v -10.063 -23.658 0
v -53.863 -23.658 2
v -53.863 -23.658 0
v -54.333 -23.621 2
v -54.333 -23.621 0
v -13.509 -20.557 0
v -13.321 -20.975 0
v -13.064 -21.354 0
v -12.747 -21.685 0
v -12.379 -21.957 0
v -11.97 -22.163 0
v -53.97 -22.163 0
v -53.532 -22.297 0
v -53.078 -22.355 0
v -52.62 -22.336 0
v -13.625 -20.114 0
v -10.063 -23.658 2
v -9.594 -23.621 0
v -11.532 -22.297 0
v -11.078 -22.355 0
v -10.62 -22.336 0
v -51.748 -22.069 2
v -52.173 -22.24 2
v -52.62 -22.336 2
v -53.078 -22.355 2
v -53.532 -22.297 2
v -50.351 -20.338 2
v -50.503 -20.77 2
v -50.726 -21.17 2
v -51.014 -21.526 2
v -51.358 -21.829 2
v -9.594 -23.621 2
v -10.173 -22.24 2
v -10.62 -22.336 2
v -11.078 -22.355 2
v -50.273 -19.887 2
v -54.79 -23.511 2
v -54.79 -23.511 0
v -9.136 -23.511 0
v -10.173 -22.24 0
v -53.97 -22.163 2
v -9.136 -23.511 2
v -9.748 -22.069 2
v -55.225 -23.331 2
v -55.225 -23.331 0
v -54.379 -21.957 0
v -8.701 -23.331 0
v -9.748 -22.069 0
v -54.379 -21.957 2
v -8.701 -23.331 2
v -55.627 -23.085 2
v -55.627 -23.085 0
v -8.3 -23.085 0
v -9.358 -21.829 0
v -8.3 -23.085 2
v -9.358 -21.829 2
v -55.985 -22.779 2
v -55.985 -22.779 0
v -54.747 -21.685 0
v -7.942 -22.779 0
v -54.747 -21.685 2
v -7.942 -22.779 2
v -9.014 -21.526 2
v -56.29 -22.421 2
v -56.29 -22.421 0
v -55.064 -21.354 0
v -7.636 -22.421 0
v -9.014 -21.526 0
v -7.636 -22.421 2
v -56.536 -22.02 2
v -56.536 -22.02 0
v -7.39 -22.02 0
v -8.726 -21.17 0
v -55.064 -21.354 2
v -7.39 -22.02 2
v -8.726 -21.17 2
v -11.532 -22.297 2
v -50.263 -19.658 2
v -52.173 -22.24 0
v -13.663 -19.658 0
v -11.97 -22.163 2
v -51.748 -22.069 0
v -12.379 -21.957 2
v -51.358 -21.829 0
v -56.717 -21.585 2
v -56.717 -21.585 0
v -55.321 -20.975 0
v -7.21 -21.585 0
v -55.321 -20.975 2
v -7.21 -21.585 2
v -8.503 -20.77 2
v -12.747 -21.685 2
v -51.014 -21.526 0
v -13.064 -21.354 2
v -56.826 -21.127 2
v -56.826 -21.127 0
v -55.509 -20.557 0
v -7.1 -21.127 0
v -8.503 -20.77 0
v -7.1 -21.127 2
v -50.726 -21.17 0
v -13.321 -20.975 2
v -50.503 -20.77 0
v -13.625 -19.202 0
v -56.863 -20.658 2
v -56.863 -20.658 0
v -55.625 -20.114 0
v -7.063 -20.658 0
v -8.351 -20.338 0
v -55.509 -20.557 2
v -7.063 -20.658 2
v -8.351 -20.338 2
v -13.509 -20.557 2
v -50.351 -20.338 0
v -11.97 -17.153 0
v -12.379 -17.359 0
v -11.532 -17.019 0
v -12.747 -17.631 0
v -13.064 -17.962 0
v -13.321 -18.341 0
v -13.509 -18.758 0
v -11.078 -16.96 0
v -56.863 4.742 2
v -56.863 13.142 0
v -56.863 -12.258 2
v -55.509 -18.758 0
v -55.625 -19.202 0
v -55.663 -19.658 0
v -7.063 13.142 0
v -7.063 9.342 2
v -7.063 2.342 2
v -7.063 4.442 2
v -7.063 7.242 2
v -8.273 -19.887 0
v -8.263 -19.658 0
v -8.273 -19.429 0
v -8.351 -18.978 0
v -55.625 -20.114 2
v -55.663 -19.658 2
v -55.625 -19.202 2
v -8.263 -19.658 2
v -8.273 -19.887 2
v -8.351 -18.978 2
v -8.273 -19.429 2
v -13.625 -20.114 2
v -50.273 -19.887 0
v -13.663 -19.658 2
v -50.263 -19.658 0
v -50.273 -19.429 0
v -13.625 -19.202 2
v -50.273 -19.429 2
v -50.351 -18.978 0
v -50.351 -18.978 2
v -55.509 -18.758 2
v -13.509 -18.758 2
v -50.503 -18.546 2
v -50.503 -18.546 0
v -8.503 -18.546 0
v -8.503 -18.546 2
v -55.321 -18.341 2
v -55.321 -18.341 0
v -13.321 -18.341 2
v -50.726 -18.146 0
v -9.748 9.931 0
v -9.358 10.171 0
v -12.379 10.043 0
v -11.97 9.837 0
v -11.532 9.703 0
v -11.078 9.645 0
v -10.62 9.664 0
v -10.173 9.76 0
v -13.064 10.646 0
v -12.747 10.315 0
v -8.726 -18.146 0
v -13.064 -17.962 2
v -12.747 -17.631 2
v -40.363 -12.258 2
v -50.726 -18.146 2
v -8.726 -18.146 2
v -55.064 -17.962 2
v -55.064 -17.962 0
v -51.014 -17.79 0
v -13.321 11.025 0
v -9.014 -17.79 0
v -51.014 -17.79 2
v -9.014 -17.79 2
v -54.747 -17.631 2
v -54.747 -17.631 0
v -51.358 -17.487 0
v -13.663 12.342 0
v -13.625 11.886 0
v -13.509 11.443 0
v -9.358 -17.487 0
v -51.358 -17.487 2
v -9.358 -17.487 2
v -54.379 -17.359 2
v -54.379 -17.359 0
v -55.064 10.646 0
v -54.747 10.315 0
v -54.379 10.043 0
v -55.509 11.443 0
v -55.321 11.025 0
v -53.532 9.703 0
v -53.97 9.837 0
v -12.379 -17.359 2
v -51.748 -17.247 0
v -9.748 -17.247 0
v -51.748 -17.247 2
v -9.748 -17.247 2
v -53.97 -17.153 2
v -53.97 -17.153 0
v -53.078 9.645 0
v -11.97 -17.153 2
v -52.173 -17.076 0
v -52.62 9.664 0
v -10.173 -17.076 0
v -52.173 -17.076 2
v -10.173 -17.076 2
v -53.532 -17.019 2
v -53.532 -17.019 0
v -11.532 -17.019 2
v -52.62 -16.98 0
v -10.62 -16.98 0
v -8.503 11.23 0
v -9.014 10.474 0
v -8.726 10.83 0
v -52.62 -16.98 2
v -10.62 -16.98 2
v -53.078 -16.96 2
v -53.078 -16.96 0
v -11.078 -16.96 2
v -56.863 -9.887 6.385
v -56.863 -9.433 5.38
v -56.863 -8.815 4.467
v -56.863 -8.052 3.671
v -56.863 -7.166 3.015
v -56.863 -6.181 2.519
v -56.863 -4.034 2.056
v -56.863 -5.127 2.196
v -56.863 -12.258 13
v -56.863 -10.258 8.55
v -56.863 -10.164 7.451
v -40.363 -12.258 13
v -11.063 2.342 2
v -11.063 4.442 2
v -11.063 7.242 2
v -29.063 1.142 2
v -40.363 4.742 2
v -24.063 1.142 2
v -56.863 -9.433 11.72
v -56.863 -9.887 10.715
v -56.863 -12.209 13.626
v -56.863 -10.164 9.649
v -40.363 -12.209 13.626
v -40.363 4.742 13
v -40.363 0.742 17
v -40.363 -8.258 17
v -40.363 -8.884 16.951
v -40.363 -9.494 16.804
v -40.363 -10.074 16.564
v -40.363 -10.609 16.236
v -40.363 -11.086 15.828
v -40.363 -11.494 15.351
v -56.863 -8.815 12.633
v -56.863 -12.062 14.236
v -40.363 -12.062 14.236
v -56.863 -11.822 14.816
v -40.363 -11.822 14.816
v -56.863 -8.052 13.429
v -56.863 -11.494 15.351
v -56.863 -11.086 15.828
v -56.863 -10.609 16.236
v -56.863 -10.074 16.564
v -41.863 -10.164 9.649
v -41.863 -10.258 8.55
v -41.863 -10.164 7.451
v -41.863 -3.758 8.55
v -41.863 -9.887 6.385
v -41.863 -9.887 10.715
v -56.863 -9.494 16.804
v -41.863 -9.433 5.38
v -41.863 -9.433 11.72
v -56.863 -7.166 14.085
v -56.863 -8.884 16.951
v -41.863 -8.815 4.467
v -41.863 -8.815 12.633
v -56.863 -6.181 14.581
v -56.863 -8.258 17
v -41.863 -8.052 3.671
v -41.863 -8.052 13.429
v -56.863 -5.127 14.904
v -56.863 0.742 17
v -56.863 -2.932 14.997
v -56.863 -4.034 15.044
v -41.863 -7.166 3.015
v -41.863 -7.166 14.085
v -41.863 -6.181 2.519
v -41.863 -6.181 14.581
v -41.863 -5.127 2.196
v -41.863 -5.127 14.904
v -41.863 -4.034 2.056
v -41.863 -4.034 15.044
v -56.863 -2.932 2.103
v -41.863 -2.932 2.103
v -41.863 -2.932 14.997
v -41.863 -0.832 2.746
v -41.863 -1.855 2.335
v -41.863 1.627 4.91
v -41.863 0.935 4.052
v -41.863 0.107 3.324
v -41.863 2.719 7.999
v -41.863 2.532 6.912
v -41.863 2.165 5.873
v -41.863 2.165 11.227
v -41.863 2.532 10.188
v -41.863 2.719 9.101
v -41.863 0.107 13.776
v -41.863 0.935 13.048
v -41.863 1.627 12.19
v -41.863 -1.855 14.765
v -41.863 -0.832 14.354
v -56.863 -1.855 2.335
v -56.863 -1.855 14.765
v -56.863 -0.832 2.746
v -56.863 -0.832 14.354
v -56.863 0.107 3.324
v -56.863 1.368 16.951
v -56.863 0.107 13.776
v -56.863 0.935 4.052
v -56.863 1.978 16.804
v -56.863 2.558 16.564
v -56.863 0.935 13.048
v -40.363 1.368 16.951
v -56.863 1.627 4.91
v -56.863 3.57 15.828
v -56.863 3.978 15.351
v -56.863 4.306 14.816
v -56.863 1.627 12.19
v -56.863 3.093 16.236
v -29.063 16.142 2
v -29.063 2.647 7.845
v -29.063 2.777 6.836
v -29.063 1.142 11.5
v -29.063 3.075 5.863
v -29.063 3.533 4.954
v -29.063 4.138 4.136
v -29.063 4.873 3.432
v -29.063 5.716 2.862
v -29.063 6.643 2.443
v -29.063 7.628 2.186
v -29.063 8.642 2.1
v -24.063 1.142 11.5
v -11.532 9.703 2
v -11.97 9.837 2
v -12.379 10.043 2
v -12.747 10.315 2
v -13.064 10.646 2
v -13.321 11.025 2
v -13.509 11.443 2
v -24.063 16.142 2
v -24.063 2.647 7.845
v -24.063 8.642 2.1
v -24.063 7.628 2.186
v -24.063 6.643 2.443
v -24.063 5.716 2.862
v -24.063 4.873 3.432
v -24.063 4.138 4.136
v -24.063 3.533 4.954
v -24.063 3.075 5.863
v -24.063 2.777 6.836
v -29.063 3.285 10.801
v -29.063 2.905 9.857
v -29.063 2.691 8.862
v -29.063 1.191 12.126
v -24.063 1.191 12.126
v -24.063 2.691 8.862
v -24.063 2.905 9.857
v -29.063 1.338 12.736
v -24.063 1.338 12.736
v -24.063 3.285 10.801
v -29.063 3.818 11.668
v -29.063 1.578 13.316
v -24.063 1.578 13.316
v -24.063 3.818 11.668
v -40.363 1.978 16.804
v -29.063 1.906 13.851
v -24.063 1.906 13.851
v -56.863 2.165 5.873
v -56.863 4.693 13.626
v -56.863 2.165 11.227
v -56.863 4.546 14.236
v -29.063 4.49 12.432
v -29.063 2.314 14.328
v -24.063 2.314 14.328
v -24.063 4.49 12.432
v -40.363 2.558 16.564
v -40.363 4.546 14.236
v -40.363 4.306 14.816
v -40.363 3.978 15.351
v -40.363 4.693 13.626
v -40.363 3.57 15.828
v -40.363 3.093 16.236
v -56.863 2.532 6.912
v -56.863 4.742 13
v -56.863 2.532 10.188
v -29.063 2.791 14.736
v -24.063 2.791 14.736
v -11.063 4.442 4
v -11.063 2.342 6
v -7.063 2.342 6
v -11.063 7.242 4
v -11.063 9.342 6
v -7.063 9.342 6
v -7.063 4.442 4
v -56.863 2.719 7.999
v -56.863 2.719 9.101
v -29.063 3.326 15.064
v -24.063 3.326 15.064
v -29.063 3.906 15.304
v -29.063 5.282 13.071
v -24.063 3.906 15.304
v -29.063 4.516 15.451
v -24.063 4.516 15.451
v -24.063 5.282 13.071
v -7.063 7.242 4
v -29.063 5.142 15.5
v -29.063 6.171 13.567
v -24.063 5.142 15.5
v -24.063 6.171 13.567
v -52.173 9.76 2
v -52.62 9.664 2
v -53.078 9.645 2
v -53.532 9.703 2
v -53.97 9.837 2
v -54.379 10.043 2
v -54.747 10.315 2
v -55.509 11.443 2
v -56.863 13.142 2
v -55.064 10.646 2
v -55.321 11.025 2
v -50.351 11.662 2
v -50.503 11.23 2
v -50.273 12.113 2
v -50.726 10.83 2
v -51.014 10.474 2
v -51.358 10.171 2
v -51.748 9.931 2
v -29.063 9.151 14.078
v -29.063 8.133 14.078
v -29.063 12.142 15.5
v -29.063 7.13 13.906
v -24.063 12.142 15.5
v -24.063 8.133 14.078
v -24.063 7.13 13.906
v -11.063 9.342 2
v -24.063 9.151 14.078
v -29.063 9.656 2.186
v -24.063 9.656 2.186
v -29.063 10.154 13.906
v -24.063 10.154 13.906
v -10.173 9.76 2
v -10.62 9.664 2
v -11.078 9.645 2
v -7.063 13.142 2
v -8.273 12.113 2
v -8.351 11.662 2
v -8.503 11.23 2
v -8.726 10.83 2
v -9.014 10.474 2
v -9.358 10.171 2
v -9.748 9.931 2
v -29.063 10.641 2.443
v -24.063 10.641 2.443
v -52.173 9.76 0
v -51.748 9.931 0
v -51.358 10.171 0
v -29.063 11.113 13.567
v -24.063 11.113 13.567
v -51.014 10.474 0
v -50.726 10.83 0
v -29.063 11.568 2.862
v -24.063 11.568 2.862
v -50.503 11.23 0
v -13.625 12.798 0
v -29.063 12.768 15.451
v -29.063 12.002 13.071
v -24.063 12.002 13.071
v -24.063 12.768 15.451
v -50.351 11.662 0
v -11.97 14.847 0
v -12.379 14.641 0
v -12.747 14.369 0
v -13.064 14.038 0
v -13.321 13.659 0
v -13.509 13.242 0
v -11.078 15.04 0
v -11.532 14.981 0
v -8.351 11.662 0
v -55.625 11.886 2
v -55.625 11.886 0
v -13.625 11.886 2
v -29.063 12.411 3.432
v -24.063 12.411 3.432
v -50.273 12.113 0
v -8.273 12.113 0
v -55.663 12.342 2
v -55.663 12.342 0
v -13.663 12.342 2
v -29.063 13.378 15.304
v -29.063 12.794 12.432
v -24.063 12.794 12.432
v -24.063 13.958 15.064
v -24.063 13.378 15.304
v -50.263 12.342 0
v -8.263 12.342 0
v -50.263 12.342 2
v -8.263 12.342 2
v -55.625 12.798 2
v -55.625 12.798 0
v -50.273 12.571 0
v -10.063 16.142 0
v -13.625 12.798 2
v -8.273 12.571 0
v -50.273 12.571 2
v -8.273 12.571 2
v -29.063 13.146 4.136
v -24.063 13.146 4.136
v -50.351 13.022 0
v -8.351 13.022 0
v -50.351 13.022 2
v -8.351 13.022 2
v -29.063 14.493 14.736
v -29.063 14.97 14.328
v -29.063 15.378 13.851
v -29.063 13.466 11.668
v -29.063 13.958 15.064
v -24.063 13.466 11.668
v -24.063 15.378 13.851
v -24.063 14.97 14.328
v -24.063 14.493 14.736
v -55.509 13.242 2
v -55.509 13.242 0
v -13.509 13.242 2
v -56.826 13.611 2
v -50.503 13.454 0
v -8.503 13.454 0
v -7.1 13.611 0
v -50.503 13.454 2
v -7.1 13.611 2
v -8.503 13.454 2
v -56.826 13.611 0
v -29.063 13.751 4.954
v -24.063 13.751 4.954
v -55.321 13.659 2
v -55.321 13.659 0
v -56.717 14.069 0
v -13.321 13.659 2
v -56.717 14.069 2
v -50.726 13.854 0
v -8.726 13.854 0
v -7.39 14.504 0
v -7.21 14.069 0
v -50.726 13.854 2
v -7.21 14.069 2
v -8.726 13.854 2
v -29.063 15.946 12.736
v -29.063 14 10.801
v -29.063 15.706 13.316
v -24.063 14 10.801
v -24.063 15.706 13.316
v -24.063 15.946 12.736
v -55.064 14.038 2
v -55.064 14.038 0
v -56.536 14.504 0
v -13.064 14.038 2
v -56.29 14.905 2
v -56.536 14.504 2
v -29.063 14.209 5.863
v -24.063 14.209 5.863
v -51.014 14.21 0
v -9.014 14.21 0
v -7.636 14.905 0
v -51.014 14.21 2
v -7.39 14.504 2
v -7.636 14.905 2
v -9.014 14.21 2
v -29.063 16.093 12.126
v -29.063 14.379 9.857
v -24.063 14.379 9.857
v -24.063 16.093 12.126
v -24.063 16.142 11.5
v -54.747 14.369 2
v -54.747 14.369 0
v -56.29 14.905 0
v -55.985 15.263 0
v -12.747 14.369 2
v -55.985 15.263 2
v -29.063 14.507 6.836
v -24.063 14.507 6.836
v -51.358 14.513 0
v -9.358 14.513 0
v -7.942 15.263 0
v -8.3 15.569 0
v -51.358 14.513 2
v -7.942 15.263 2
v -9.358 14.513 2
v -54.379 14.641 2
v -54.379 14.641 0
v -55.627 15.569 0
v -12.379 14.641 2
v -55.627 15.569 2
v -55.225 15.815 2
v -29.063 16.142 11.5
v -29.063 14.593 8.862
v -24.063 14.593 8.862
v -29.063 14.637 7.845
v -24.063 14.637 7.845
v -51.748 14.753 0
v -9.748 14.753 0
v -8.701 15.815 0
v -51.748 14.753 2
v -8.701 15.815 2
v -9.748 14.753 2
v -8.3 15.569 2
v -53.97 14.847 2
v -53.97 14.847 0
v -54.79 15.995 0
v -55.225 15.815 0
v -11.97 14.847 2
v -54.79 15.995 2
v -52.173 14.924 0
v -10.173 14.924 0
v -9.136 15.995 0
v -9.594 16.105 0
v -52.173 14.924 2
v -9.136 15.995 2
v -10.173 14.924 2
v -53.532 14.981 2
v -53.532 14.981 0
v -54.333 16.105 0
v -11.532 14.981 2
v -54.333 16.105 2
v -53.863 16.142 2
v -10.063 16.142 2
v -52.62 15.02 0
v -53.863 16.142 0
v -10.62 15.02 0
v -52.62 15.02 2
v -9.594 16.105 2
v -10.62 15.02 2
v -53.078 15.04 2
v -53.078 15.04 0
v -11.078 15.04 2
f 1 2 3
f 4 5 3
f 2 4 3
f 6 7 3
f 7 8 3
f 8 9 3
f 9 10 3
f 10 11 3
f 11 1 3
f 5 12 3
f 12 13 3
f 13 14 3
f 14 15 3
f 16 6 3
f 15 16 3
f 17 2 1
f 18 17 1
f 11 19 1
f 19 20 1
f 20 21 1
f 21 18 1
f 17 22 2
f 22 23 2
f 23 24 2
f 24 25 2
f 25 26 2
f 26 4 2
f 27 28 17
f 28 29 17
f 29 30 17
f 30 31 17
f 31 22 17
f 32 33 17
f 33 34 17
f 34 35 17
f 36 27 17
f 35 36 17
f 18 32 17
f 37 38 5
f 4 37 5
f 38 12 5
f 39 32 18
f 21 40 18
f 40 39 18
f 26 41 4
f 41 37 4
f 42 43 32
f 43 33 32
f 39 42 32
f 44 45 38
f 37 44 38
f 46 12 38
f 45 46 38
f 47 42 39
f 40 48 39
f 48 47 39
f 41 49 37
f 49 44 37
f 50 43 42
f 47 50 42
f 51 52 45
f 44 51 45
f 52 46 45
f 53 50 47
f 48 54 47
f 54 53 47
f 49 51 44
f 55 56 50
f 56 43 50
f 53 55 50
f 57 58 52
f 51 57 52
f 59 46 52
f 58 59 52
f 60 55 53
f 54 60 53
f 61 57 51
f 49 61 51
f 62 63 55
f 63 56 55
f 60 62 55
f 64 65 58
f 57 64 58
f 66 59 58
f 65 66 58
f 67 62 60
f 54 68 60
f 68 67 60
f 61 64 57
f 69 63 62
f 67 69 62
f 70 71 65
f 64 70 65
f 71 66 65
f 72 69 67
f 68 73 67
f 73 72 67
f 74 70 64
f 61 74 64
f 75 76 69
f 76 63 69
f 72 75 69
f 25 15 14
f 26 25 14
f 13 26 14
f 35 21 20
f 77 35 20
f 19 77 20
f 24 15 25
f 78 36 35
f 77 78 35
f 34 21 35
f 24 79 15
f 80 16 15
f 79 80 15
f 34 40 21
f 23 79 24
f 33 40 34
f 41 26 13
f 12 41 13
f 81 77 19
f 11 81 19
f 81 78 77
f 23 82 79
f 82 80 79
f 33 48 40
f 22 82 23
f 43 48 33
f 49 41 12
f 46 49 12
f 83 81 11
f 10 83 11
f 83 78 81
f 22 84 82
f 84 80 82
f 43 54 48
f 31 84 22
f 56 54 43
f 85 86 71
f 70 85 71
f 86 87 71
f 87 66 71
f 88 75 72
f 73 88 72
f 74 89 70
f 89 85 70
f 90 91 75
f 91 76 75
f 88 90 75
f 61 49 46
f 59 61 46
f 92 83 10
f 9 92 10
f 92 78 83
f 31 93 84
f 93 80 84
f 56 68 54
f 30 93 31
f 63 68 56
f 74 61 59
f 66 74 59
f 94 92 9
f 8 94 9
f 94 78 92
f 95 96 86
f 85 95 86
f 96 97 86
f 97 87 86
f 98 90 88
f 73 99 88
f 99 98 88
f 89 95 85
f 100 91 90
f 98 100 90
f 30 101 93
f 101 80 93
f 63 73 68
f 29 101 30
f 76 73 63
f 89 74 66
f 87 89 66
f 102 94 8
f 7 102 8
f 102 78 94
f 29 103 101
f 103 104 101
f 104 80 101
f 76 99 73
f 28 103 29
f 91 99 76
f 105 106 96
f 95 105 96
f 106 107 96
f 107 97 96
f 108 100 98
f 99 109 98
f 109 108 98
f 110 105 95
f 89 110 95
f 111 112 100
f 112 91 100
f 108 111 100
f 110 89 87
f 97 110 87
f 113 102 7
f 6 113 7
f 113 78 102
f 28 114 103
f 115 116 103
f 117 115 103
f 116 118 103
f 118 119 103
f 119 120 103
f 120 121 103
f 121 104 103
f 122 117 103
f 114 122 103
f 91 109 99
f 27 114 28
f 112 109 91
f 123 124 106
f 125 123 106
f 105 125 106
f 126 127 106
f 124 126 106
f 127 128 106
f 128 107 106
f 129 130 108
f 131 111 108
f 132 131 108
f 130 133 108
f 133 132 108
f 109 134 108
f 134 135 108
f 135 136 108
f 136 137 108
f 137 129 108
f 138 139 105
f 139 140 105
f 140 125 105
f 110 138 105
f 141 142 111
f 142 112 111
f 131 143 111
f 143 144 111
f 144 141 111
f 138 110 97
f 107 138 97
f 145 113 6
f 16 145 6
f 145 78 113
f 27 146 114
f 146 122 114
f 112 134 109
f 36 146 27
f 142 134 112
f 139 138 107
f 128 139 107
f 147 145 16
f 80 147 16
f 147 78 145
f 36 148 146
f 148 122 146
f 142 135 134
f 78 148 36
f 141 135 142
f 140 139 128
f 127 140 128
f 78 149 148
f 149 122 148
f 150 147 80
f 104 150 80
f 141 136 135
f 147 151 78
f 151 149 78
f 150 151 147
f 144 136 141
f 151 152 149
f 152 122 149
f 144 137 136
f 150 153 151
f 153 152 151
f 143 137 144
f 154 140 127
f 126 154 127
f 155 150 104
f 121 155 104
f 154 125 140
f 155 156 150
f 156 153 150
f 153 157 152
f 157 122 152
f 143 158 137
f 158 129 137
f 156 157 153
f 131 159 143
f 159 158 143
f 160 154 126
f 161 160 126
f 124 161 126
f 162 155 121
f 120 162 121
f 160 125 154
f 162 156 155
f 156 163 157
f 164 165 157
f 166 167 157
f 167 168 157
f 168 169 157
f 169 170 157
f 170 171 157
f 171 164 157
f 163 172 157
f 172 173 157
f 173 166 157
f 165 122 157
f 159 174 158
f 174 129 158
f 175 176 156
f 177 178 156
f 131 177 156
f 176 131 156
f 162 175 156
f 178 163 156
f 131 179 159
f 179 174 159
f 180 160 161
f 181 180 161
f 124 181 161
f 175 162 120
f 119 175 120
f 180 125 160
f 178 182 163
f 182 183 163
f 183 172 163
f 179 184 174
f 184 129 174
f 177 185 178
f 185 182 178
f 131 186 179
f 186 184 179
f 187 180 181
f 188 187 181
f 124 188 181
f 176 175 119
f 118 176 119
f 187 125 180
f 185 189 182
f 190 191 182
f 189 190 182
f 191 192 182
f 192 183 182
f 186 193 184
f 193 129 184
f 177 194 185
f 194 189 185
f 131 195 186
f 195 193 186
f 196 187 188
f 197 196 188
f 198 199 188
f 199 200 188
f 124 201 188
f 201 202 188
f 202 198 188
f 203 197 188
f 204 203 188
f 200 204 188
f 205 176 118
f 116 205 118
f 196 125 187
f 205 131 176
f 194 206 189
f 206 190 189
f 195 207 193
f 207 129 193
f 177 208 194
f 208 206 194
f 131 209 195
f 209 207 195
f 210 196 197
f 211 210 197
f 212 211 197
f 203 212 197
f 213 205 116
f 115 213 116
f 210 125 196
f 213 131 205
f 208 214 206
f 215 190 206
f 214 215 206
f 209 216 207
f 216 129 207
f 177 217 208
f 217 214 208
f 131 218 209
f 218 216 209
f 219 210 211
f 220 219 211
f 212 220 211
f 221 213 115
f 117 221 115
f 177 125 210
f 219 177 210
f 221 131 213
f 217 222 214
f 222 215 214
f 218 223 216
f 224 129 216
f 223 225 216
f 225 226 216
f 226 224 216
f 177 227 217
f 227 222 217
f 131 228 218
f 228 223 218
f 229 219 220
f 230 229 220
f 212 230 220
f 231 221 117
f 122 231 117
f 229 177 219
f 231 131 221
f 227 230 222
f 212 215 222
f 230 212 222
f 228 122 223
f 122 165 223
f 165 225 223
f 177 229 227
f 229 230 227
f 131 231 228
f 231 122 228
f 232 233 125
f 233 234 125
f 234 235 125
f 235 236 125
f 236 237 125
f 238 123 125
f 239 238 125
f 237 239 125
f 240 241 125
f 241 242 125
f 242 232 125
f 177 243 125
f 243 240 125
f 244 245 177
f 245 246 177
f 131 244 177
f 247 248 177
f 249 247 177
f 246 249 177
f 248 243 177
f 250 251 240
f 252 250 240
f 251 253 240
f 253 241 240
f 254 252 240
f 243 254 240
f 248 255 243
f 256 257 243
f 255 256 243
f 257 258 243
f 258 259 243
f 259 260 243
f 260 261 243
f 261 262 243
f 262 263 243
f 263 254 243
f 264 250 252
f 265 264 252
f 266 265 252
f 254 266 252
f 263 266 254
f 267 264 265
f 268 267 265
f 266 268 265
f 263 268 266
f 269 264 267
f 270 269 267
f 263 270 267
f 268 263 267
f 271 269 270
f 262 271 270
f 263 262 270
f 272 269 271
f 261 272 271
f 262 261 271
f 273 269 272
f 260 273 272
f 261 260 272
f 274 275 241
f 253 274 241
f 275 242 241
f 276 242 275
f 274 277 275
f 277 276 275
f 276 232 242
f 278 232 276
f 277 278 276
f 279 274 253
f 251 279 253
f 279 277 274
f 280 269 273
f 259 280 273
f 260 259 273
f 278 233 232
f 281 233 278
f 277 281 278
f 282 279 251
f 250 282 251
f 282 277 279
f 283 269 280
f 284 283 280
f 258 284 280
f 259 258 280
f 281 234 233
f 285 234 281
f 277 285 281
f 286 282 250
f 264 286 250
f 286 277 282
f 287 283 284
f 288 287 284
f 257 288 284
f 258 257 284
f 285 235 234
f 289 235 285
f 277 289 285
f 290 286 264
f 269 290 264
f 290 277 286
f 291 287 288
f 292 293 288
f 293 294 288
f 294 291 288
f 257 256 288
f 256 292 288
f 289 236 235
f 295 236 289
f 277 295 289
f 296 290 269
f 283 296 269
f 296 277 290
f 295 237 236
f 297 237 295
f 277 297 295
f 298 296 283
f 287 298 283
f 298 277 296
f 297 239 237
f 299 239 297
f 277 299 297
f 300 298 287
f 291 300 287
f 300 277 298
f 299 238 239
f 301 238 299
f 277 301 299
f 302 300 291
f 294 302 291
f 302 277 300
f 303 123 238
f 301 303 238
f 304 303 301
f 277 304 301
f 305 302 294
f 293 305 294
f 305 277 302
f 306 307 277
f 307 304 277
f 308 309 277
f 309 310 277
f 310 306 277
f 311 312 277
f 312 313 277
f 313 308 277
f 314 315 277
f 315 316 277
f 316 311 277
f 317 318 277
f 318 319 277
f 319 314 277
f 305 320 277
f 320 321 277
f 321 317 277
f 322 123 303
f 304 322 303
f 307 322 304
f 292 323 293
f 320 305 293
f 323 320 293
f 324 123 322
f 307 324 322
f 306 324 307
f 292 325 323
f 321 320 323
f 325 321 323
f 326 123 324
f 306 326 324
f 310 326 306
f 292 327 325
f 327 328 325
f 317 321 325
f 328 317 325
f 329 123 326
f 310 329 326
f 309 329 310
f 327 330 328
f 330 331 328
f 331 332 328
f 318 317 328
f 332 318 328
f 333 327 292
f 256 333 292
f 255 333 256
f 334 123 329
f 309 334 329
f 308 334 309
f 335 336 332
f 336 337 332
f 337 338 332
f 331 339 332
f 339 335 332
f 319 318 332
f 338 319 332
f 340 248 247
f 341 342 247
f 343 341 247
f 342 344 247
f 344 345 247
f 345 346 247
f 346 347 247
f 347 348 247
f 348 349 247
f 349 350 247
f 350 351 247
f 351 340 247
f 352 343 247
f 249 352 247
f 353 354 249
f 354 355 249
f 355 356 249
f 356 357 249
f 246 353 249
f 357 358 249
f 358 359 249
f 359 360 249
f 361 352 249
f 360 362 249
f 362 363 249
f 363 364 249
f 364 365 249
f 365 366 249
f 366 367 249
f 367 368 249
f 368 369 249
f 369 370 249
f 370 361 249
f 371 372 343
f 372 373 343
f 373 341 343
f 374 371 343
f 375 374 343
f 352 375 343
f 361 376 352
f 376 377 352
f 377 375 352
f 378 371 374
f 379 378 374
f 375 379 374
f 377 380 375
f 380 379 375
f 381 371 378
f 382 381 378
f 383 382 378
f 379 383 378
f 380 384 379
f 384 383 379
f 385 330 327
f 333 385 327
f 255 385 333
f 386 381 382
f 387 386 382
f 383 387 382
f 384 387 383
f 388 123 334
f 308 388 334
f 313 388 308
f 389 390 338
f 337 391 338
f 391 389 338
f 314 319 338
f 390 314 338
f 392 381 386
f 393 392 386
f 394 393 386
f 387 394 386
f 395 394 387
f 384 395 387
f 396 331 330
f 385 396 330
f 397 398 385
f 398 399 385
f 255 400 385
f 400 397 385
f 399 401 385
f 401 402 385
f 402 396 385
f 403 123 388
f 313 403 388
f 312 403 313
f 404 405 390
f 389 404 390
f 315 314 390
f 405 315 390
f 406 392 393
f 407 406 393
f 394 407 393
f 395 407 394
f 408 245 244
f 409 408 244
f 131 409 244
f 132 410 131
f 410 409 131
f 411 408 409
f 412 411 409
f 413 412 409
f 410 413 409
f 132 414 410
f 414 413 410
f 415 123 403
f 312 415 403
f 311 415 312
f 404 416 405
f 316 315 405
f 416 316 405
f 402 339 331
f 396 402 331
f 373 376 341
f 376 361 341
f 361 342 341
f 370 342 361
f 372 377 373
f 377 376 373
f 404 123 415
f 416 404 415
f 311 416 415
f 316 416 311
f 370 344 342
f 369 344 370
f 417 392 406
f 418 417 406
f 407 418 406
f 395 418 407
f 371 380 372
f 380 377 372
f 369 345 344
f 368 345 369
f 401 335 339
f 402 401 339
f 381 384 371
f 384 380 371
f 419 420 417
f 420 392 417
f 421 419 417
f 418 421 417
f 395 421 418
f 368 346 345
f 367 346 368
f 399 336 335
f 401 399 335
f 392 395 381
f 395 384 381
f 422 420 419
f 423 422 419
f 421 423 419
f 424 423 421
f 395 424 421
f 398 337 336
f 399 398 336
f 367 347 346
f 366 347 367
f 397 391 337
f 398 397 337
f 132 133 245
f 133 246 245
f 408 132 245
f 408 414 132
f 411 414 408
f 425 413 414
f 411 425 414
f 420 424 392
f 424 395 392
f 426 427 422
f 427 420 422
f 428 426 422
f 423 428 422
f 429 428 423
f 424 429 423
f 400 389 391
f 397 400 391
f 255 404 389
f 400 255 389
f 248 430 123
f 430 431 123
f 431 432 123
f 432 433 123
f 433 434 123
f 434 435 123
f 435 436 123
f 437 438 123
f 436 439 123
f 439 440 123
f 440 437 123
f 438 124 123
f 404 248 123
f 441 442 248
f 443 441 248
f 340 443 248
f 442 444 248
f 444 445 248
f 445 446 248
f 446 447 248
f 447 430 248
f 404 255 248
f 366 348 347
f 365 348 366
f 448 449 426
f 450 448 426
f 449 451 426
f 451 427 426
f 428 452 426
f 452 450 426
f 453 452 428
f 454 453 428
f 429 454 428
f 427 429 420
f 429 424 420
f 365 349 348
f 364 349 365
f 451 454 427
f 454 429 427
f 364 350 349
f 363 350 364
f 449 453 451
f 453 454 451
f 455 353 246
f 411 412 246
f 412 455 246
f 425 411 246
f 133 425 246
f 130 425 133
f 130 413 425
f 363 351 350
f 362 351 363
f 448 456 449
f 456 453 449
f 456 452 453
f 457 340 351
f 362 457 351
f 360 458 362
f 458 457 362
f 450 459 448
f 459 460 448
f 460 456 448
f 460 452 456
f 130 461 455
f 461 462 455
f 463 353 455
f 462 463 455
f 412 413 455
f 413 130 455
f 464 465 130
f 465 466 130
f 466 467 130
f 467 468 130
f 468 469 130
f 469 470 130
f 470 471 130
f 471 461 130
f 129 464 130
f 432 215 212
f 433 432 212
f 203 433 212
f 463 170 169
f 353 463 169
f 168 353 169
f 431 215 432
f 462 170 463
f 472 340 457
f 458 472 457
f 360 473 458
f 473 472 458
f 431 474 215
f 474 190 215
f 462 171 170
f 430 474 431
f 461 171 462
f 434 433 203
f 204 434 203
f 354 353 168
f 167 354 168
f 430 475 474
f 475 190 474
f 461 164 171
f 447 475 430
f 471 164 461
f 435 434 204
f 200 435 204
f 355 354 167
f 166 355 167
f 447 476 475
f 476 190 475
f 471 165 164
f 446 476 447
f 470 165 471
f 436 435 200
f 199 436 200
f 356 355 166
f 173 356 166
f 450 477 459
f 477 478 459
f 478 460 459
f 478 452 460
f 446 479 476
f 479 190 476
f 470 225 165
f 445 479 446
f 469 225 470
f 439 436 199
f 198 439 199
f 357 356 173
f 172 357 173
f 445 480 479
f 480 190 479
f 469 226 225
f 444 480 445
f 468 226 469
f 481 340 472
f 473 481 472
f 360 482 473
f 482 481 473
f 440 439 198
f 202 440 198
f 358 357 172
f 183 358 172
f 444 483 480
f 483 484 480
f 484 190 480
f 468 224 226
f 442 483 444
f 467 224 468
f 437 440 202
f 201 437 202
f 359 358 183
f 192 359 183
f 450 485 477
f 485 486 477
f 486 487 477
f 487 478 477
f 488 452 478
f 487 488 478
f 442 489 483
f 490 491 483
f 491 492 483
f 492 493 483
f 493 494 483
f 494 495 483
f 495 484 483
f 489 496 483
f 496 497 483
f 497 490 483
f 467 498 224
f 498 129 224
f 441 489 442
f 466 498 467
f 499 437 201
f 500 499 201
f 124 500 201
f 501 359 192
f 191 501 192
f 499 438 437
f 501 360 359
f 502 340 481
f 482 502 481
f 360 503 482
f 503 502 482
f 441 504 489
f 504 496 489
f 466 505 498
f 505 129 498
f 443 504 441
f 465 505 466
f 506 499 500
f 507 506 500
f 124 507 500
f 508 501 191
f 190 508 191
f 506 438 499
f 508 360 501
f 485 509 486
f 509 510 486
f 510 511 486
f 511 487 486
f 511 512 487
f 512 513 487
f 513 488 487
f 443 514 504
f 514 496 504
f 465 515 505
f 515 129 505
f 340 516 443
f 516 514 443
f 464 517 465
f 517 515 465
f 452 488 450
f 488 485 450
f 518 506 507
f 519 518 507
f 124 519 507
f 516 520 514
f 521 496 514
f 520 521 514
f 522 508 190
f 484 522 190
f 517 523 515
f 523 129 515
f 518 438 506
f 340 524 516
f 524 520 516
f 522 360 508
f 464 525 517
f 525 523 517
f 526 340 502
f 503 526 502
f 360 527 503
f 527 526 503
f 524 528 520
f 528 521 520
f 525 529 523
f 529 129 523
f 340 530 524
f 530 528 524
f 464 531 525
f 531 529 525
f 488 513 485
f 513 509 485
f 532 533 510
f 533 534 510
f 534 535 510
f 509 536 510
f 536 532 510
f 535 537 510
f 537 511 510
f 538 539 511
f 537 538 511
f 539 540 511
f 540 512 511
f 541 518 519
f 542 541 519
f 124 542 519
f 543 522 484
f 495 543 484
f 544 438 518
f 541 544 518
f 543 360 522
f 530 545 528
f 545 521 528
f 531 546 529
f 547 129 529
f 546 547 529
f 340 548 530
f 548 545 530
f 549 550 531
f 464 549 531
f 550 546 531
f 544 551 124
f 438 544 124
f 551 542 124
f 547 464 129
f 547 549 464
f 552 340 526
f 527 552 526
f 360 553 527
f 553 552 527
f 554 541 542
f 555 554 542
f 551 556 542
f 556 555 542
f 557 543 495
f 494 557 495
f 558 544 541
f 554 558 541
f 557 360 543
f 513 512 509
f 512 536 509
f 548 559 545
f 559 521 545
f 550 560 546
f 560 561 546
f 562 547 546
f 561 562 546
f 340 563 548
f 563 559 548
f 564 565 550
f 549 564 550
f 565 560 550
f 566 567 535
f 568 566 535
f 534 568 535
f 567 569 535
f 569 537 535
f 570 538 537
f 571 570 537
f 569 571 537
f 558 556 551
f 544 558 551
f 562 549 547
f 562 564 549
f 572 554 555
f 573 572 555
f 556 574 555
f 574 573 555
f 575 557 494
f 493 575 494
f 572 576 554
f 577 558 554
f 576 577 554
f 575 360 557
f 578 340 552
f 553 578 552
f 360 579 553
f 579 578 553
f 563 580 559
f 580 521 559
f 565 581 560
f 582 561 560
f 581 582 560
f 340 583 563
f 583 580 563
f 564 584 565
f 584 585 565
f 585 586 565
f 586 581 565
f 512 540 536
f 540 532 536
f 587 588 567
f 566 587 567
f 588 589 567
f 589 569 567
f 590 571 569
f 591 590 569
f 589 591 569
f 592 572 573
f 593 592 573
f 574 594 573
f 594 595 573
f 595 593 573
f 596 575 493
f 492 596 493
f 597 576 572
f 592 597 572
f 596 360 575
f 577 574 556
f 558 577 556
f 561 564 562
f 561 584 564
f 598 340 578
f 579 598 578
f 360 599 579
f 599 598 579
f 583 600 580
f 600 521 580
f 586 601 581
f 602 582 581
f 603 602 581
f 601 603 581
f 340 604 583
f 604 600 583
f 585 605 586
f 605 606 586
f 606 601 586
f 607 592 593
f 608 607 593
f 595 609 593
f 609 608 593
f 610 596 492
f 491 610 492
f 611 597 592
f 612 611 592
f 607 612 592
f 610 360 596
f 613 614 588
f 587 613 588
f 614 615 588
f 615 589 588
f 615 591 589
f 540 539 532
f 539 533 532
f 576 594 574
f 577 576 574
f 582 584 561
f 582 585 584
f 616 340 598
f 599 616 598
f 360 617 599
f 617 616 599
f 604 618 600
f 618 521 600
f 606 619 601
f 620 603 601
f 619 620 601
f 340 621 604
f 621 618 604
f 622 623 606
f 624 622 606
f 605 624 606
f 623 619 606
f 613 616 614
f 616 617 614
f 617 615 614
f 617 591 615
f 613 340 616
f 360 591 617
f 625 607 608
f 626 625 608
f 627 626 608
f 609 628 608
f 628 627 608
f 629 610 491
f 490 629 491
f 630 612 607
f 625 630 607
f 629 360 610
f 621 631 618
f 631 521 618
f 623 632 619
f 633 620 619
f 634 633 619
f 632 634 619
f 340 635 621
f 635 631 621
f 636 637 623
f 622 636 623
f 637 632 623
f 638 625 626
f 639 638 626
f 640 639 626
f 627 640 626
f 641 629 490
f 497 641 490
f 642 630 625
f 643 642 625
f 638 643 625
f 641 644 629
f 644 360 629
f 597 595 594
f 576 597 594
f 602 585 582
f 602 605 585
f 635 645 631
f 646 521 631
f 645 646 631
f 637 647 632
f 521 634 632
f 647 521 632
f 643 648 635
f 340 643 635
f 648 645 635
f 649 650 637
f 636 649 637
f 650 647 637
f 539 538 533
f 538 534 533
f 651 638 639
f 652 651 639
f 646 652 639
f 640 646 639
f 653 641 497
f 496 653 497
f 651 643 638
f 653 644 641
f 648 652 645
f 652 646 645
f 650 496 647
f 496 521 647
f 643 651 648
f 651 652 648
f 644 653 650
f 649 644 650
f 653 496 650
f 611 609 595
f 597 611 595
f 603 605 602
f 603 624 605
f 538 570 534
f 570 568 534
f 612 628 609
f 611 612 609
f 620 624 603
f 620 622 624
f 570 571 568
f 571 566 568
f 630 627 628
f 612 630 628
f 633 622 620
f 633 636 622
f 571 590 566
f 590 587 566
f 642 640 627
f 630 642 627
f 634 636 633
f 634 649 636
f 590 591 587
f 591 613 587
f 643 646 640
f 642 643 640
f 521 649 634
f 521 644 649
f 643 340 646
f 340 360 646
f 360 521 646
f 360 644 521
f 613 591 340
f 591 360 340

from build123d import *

# Parameters (mm, degrees)
CROQUIS1_W               = 49.8
CROQUIS1_H               = 39.8
CROQUIS1_R               = 2.7
SALIENTE_EXTRUIR1_DEPTH  = 6
CORTAR_EXTRUIR1_DEPTH    = 4
REDONDEO1_R              = 3
SALIENTE_EXTRUIR3_DEPTH  = 3
CROQUIS5_R               = 6.35
CORTAR_EXTRUIR2_DEPTH    = 3
SALIENTE_EXTRUIR4_DEPTH  = 10
SALIENTE_EXTRUIR5_DEPTH  = 2
CORTAR_EXTRUIR3_START    = -3
CORTAR_EXTRUIR3_DEPTH    = 3
CORTAR_EXTRUIR4_DEPTH    = 4
CROQUIS10_W              = 4
CROQUIS10_H              = 7
SALIENTE_EXTRUIR6_DEPTH  = 4
CORTAR_EXTRUIR5_START    = -4
CORTAR_EXTRUIR5_DEPTH    = 4
CROQUIS16_W              = 28.958796265
CROQUIS16_H              = 47.870649268
CORTAR_EXTRUIR6_DEPTH    = 2
CROQUIS17_W              = 5
CROQUIS17_H              = 16
CORTAR_EXTRUIR7_DEPTH    = 10
CORTAR_EXTRUIR8_DEPTH    = 2
SALIENTE_EXTRUIR7_DEPTH  = 2
CROQUIS22_R              = 6.5
SALIENTE_EXTRUIR9_DEPTH  = 15
SALIENTE_EXTRUIR10_DEPTH = 1.5
CROQUIS25_W              = 5
CROQUIS25_H              = 15
SALIENTE_EXTRUIR11_DEPTH = 13.5
CROQUIS26_R              = 6
CORTAR_EXTRUIR9_DEPTH    = 5
REDONDEO2_R              = 4


with BuildPart() as part:
    # Croquis1 → Saliente-Extruir1 (new body)
    with BuildSketch(Plane.XY):
        with Locations((-31.963412372, -3.757931034)):
            Rectangle(CROQUIS1_W, CROQUIS1_H)
        with Locations((-52.963412372, 12.342068966)):
            Circle(CROQUIS1_R, mode=Mode.SUBTRACT)
        with Locations((-10.963412372, 12.342068966)):
            Circle(CROQUIS1_R, mode=Mode.SUBTRACT)
        with Locations((-10.963412372, -19.657931034)):
            Circle(CROQUIS1_R, mode=Mode.SUBTRACT)
        with Locations((-52.963412372, -19.657931034)):
            Circle(CROQUIS1_R, mode=Mode.SUBTRACT)
    extrude(amount=SALIENTE_EXTRUIR1_DEPTH)

    # Croquis2 → Cortar-Extruir1 (cut)
    with BuildSketch(Plane.XY.offset(6)):
        with BuildLine():
            Line((-49.963412372, -16.757931034), (-13.963412372, -16.757931034))
            ThreePointArc((-13.963412372, -16.757931034), (-12.54919881, -16.172144597), (-11.963412372, -14.757931034))
            Line((-11.963412372, -14.757931034), (-11.963412372, 7.242068966))
            ThreePointArc((-11.963412372, 7.242068966), (-12.54919881, 8.656282528), (-13.963412372, 9.242068966))
            Line((-13.963412372, 9.242068966), (-49.963412372, 9.242068966))
            ThreePointArc((-49.963412372, 9.242068966), (-51.377625934, 8.656282528), (-51.963412372, 7.242068966))
            Line((-51.963412372, 7.242068966), (-51.963412372, -14.757931034))
            ThreePointArc((-51.963412372, -14.757931034), (-51.377625934, -16.172144597), (-49.963412372, -16.757931034))
        make_face()
    extrude(amount=-CORTAR_EXTRUIR1_DEPTH, mode=Mode.SUBTRACT)

    # Redondeo1
    redondeo1_edges = [part.edges().sort_by_distance(p)[0] for p in [
        (-56.863412372, 16.142068966, 3),
        (-7.063412372, 16.142068966, 3),
        (-7.063412372, -23.657931034, 3),
        (-56.863412372, -23.657931034, 3),
    ]]
    fillet(redondeo1_edges, radius=REDONDEO1_R)

    # Croquis4 → Saliente-Extruir3 (add)
    with BuildSketch(Plane(origin=(0, 0, 0), x_dir=(-1, 0, 0), z_dir=(0, 0, -1))):
        with BuildLine():
            Line((56.863412372, 4.242068966), (61.863412372, 4.242068966))
            Line((61.863412372, 4.242068966), (61.863412372, -0.257931034))
            Line((61.863412372, -0.257931034), (57.863412372, -0.257931034))
            ThreePointArc((57.863412372, -0.257931034), (57.358118834, -0.294597605), (56.863412372, -0.403829068))
            Line((56.863412372, -0.403829068), (56.863412372, 4.242068966))
        make_face()
        with BuildLine():
            Line((61.863412372, -11.757931034), (56.863412372, -11.757931034))
            Line((56.863412372, -11.757931034), (56.863412372, -7.112033001))
            ThreePointArc((56.863412372, -7.112033001), (57.358118834, -7.221264464), (57.863412372, -7.257931034))
            Line((57.863412372, -7.257931034), (61.863412372, -7.257931034))
            Line((61.863412372, -7.257931034), (61.863412372, -11.757931034))
        make_face()
    extrude(amount=-SALIENTE_EXTRUIR3_DEPTH)

    # Croquis5 → Cortar-Extruir2 (cut)
    with BuildSketch(Plane.XY.offset(3)):
        with Locations((-57.863412372, -3.757931034)):
            Circle(CROQUIS5_R)
    extrude(amount=CORTAR_EXTRUIR2_DEPTH, mode=Mode.SUBTRACT)

    # Croquis6 → Saliente-Extruir4 (add)
    with BuildSketch(Plane.XY.offset(3)):
        with BuildLine():
            Line((-61.863412372, 4.242068966), (-51.963412372, 4.242068966))
            Line((-51.963412372, 4.242068966), (-48.963412372, 4.242068966))
            Line((-48.963412372, 4.242068966), (-48.963412372, -11.757931034))
            Line((-48.963412372, -11.757931034), (-51.963412372, -11.757931034))
            Line((-51.963412372, -11.757931034), (-61.863412372, -11.757931034))
            Line((-61.863412372, -11.757931034), (-61.863412372, -8.689715701))
            ThreePointArc((-61.863412372, -8.689715701), (-51.513412372, -3.757931034), (-61.863412372, 1.173853632))
            Line((-61.863412372, 1.173853632), (-61.863412372, 4.242068966))
        make_face()
    extrude(amount=SALIENTE_EXTRUIR4_DEPTH)

    # Croquis7 → Saliente-Extruir5 (add)
    with BuildSketch(Plane.XY.offset(2)):
        Polygon((-51.963412372, -3.757931034), (-51.963412372, 4.242068966), (-48.963412372, 4.242068966), (-48.963412372, -11.757931034), (-51.963412372, -11.757931034), align=None)
    extrude(amount=SALIENTE_EXTRUIR5_DEPTH)

    # Croquis8 → Cortar-Extruir3 (cut)
    with BuildSketch(Plane.XY.offset(3).offset(CORTAR_EXTRUIR3_START)):
        with BuildLine():
            Line((-56.863412372, -0.403829068), (-56.863412372, -7.112033001))
            ThreePointArc((-56.863412372, -7.112033001), (-53.509310406, -3.757931034), (-56.863412372, -0.403829068))
        make_face()
    extrude(amount=CORTAR_EXTRUIR3_DEPTH, mode=Mode.SUBTRACT)

    # Croquis9 → Cortar-Extruir4 (cut)
    with BuildSketch(Plane.XY.offset(6)):
        Polygon((-56.863412372, -11.757931034), (-56.863412372, -27.492217147), (-1.817084798, -27.492217147), (-1.817084798, 22.861833321), (-56.863412372, 22.861833321), (-56.863412372, 4.242068966), (-47.172737702, 4.242068966), (-47.172737702, -11.757931034), align=None)
    extrude(amount=-CORTAR_EXTRUIR4_DEPTH, mode=Mode.SUBTRACT)

    # Croquis10 → Saliente-Extruir6 (add)
    with BuildSketch(Plane.XY.offset(2)):
        with Locations((-9.063412372, 5.842068966)):
            Rectangle(CROQUIS10_W, CROQUIS10_H)
    extrude(amount=SALIENTE_EXTRUIR6_DEPTH)

    # Croquis11 → Cortar-Extruir5 (cut)
    with BuildSketch(Plane(origin=(-7.063412372, 0, 0), x_dir=(0, 0, -1), z_dir=(1, 0, 0)).offset(CORTAR_EXTRUIR5_START)):
        Polygon((-2, 5.842068966), (-2, 7.242068966), (-4, 7.242068966), (-4, 4.442068966), (-2, 4.442068966), align=None)
    extrude(amount=CORTAR_EXTRUIR5_DEPTH, mode=Mode.SUBTRACT)

    # Croquis16 → Cortar-Extruir6 (cut)
    with BuildSketch(Plane.XY.offset(2)):
        with Locations((-49.718694927, -6.990346687)):
            Rectangle(CROQUIS16_W, CROQUIS16_H)
    extrude(amount=CORTAR_EXTRUIR6_DEPTH, mode=Mode.SUBTRACT)


with BuildPart() as cortar_extruir6_kept_piece:
    # of the separate pieces the step leaves, the one the design keeps (cortar_extruir6_pieces_kept)
    add(part.part.solids().sort_by_distance((-53.863412372, 16.142068966, 0))[0])

    # Croquis17 → Cortar-Extruir7 (cut)
    with BuildSketch(Plane.XY.offset(2)):
        with Locations((-59.363412372, -3.757931034)):
            Rectangle(CROQUIS17_W, CROQUIS17_H)
    extrude(amount=-CORTAR_EXTRUIR7_DEPTH, mode=Mode.SUBTRACT)

    # Croquis18 → Cortar-Extruir8 (cut)
    with BuildSketch(Plane.XY.offset(2)):
        with BuildLine():
            Line((-56.863412372, -0.403829068), (-50.513412372, -0.403829068))
            ThreePointArc((-50.513412372, -0.403829068), (-47.159310406, -3.757931034), (-50.513412372, -7.112033001))
            Line((-50.513412372, -7.112033001), (-56.863412372, -7.112033001))
            Line((-56.863412372, -7.112033001), (-56.863412372, -0.403829068))
        make_face()
    extrude(amount=-CORTAR_EXTRUIR8_DEPTH, mode=Mode.SUBTRACT)

    # Croquis20 → Saliente-Extruir7 (add)
    with BuildSketch(Plane.XY.offset(2)):
        with BuildLine():
            Line((-56.863412372, -0.403829068), (-56.863412372, -7.112033001))
            Line((-56.863412372, -7.112033001), (-50.513412372, -7.112033001))
            ThreePointArc((-50.513412372, -7.112033001), (-47.159310406, -3.757931034), (-50.513412372, -0.403829068))
            Line((-50.513412372, -0.403829068), (-56.863412372, -0.403829068))
        make_face()
    extrude(amount=-SALIENTE_EXTRUIR7_DEPTH)

    # Croquis22 → Saliente-Extruir9 (add)
    with BuildSketch(Plane.ZY.offset(56.863412372)):
        with BuildLine():
            Line((2, -3.757931034), (2, 4.742068966))
            Line((2, 4.742068966), (13, 4.742068966))
            ThreePointArc((13, 4.742068966), (15.828427125, 3.57049609), (17, 0.742068966))
            Line((17, 0.742068966), (17, -8.257931034))
            ThreePointArc((17, -8.257931034), (15.828427125, -11.086358159), (13, -12.257931034))
            Line((13, -12.257931034), (2, -12.257931034))
            Line((2, -12.257931034), (2, -3.757931034))
        make_face()
        with Locations(Location((8.55, -3.757931034, 0), (0, 0, 270))):
            Circle(CROQUIS22_R, mode=Mode.SUBTRACT)
    extrude(amount=-SALIENTE_EXTRUIR9_DEPTH)

    # Croquis23 → Saliente-Extruir10 (add)
    with BuildSketch(Plane(origin=(-41.863412372, 0, 0), x_dir=(0, 0, -1), z_dir=(1, 0, 0))):
        with BuildLine():
            Line((-13, -12.257931034), (-2, -12.257931034))
            Line((-2, -12.257931034), (-2, 4.742068966))
            Line((-2, 4.742068966), (-13, 4.742068966))
            ThreePointArc((-13, 4.742068966), (-15.828427125, 3.57049609), (-17, 0.742068966))
            Line((-17, 0.742068966), (-17, -8.257931034))
            ThreePointArc((-17, -8.257931034), (-15.828427125, -11.086358159), (-13, -12.257931034))
        make_face()
    extrude(amount=SALIENTE_EXTRUIR10_DEPTH)

    # Croquis25 → Saliente-Extruir11 (add)
    with BuildSketch(Plane.XY.offset(2)):
        with Locations((-26.563412372, 8.642068966)):
            Rectangle(CROQUIS25_W, CROQUIS25_H)
    extrude(amount=SALIENTE_EXTRUIR11_DEPTH)

    # Croquis26 → Cortar-Extruir9 (cut)
    with BuildSketch(Plane(origin=(-24.063412372, 0, 0), x_dir=(0, 0, -1), z_dir=(1, 0, 0))):
        with Locations((-8.1, 8.642068966)):
            Circle(CROQUIS26_R)
    extrude(amount=-CORTAR_EXTRUIR9_DEPTH, mode=Mode.SUBTRACT)

    # Redondeo2
    redondeo2_edges = [cortar_extruir6_kept_piece.edges().sort_by_distance(p)[0] for p in [
        (-26.563412372, 1.142068966, 15.5),
        (-26.563412372, 16.142068966, 15.5),
    ]]
    fillet(redondeo2_edges, radius=REDONDEO2_R)


solid = cortar_extruir6_kept_piece.part
